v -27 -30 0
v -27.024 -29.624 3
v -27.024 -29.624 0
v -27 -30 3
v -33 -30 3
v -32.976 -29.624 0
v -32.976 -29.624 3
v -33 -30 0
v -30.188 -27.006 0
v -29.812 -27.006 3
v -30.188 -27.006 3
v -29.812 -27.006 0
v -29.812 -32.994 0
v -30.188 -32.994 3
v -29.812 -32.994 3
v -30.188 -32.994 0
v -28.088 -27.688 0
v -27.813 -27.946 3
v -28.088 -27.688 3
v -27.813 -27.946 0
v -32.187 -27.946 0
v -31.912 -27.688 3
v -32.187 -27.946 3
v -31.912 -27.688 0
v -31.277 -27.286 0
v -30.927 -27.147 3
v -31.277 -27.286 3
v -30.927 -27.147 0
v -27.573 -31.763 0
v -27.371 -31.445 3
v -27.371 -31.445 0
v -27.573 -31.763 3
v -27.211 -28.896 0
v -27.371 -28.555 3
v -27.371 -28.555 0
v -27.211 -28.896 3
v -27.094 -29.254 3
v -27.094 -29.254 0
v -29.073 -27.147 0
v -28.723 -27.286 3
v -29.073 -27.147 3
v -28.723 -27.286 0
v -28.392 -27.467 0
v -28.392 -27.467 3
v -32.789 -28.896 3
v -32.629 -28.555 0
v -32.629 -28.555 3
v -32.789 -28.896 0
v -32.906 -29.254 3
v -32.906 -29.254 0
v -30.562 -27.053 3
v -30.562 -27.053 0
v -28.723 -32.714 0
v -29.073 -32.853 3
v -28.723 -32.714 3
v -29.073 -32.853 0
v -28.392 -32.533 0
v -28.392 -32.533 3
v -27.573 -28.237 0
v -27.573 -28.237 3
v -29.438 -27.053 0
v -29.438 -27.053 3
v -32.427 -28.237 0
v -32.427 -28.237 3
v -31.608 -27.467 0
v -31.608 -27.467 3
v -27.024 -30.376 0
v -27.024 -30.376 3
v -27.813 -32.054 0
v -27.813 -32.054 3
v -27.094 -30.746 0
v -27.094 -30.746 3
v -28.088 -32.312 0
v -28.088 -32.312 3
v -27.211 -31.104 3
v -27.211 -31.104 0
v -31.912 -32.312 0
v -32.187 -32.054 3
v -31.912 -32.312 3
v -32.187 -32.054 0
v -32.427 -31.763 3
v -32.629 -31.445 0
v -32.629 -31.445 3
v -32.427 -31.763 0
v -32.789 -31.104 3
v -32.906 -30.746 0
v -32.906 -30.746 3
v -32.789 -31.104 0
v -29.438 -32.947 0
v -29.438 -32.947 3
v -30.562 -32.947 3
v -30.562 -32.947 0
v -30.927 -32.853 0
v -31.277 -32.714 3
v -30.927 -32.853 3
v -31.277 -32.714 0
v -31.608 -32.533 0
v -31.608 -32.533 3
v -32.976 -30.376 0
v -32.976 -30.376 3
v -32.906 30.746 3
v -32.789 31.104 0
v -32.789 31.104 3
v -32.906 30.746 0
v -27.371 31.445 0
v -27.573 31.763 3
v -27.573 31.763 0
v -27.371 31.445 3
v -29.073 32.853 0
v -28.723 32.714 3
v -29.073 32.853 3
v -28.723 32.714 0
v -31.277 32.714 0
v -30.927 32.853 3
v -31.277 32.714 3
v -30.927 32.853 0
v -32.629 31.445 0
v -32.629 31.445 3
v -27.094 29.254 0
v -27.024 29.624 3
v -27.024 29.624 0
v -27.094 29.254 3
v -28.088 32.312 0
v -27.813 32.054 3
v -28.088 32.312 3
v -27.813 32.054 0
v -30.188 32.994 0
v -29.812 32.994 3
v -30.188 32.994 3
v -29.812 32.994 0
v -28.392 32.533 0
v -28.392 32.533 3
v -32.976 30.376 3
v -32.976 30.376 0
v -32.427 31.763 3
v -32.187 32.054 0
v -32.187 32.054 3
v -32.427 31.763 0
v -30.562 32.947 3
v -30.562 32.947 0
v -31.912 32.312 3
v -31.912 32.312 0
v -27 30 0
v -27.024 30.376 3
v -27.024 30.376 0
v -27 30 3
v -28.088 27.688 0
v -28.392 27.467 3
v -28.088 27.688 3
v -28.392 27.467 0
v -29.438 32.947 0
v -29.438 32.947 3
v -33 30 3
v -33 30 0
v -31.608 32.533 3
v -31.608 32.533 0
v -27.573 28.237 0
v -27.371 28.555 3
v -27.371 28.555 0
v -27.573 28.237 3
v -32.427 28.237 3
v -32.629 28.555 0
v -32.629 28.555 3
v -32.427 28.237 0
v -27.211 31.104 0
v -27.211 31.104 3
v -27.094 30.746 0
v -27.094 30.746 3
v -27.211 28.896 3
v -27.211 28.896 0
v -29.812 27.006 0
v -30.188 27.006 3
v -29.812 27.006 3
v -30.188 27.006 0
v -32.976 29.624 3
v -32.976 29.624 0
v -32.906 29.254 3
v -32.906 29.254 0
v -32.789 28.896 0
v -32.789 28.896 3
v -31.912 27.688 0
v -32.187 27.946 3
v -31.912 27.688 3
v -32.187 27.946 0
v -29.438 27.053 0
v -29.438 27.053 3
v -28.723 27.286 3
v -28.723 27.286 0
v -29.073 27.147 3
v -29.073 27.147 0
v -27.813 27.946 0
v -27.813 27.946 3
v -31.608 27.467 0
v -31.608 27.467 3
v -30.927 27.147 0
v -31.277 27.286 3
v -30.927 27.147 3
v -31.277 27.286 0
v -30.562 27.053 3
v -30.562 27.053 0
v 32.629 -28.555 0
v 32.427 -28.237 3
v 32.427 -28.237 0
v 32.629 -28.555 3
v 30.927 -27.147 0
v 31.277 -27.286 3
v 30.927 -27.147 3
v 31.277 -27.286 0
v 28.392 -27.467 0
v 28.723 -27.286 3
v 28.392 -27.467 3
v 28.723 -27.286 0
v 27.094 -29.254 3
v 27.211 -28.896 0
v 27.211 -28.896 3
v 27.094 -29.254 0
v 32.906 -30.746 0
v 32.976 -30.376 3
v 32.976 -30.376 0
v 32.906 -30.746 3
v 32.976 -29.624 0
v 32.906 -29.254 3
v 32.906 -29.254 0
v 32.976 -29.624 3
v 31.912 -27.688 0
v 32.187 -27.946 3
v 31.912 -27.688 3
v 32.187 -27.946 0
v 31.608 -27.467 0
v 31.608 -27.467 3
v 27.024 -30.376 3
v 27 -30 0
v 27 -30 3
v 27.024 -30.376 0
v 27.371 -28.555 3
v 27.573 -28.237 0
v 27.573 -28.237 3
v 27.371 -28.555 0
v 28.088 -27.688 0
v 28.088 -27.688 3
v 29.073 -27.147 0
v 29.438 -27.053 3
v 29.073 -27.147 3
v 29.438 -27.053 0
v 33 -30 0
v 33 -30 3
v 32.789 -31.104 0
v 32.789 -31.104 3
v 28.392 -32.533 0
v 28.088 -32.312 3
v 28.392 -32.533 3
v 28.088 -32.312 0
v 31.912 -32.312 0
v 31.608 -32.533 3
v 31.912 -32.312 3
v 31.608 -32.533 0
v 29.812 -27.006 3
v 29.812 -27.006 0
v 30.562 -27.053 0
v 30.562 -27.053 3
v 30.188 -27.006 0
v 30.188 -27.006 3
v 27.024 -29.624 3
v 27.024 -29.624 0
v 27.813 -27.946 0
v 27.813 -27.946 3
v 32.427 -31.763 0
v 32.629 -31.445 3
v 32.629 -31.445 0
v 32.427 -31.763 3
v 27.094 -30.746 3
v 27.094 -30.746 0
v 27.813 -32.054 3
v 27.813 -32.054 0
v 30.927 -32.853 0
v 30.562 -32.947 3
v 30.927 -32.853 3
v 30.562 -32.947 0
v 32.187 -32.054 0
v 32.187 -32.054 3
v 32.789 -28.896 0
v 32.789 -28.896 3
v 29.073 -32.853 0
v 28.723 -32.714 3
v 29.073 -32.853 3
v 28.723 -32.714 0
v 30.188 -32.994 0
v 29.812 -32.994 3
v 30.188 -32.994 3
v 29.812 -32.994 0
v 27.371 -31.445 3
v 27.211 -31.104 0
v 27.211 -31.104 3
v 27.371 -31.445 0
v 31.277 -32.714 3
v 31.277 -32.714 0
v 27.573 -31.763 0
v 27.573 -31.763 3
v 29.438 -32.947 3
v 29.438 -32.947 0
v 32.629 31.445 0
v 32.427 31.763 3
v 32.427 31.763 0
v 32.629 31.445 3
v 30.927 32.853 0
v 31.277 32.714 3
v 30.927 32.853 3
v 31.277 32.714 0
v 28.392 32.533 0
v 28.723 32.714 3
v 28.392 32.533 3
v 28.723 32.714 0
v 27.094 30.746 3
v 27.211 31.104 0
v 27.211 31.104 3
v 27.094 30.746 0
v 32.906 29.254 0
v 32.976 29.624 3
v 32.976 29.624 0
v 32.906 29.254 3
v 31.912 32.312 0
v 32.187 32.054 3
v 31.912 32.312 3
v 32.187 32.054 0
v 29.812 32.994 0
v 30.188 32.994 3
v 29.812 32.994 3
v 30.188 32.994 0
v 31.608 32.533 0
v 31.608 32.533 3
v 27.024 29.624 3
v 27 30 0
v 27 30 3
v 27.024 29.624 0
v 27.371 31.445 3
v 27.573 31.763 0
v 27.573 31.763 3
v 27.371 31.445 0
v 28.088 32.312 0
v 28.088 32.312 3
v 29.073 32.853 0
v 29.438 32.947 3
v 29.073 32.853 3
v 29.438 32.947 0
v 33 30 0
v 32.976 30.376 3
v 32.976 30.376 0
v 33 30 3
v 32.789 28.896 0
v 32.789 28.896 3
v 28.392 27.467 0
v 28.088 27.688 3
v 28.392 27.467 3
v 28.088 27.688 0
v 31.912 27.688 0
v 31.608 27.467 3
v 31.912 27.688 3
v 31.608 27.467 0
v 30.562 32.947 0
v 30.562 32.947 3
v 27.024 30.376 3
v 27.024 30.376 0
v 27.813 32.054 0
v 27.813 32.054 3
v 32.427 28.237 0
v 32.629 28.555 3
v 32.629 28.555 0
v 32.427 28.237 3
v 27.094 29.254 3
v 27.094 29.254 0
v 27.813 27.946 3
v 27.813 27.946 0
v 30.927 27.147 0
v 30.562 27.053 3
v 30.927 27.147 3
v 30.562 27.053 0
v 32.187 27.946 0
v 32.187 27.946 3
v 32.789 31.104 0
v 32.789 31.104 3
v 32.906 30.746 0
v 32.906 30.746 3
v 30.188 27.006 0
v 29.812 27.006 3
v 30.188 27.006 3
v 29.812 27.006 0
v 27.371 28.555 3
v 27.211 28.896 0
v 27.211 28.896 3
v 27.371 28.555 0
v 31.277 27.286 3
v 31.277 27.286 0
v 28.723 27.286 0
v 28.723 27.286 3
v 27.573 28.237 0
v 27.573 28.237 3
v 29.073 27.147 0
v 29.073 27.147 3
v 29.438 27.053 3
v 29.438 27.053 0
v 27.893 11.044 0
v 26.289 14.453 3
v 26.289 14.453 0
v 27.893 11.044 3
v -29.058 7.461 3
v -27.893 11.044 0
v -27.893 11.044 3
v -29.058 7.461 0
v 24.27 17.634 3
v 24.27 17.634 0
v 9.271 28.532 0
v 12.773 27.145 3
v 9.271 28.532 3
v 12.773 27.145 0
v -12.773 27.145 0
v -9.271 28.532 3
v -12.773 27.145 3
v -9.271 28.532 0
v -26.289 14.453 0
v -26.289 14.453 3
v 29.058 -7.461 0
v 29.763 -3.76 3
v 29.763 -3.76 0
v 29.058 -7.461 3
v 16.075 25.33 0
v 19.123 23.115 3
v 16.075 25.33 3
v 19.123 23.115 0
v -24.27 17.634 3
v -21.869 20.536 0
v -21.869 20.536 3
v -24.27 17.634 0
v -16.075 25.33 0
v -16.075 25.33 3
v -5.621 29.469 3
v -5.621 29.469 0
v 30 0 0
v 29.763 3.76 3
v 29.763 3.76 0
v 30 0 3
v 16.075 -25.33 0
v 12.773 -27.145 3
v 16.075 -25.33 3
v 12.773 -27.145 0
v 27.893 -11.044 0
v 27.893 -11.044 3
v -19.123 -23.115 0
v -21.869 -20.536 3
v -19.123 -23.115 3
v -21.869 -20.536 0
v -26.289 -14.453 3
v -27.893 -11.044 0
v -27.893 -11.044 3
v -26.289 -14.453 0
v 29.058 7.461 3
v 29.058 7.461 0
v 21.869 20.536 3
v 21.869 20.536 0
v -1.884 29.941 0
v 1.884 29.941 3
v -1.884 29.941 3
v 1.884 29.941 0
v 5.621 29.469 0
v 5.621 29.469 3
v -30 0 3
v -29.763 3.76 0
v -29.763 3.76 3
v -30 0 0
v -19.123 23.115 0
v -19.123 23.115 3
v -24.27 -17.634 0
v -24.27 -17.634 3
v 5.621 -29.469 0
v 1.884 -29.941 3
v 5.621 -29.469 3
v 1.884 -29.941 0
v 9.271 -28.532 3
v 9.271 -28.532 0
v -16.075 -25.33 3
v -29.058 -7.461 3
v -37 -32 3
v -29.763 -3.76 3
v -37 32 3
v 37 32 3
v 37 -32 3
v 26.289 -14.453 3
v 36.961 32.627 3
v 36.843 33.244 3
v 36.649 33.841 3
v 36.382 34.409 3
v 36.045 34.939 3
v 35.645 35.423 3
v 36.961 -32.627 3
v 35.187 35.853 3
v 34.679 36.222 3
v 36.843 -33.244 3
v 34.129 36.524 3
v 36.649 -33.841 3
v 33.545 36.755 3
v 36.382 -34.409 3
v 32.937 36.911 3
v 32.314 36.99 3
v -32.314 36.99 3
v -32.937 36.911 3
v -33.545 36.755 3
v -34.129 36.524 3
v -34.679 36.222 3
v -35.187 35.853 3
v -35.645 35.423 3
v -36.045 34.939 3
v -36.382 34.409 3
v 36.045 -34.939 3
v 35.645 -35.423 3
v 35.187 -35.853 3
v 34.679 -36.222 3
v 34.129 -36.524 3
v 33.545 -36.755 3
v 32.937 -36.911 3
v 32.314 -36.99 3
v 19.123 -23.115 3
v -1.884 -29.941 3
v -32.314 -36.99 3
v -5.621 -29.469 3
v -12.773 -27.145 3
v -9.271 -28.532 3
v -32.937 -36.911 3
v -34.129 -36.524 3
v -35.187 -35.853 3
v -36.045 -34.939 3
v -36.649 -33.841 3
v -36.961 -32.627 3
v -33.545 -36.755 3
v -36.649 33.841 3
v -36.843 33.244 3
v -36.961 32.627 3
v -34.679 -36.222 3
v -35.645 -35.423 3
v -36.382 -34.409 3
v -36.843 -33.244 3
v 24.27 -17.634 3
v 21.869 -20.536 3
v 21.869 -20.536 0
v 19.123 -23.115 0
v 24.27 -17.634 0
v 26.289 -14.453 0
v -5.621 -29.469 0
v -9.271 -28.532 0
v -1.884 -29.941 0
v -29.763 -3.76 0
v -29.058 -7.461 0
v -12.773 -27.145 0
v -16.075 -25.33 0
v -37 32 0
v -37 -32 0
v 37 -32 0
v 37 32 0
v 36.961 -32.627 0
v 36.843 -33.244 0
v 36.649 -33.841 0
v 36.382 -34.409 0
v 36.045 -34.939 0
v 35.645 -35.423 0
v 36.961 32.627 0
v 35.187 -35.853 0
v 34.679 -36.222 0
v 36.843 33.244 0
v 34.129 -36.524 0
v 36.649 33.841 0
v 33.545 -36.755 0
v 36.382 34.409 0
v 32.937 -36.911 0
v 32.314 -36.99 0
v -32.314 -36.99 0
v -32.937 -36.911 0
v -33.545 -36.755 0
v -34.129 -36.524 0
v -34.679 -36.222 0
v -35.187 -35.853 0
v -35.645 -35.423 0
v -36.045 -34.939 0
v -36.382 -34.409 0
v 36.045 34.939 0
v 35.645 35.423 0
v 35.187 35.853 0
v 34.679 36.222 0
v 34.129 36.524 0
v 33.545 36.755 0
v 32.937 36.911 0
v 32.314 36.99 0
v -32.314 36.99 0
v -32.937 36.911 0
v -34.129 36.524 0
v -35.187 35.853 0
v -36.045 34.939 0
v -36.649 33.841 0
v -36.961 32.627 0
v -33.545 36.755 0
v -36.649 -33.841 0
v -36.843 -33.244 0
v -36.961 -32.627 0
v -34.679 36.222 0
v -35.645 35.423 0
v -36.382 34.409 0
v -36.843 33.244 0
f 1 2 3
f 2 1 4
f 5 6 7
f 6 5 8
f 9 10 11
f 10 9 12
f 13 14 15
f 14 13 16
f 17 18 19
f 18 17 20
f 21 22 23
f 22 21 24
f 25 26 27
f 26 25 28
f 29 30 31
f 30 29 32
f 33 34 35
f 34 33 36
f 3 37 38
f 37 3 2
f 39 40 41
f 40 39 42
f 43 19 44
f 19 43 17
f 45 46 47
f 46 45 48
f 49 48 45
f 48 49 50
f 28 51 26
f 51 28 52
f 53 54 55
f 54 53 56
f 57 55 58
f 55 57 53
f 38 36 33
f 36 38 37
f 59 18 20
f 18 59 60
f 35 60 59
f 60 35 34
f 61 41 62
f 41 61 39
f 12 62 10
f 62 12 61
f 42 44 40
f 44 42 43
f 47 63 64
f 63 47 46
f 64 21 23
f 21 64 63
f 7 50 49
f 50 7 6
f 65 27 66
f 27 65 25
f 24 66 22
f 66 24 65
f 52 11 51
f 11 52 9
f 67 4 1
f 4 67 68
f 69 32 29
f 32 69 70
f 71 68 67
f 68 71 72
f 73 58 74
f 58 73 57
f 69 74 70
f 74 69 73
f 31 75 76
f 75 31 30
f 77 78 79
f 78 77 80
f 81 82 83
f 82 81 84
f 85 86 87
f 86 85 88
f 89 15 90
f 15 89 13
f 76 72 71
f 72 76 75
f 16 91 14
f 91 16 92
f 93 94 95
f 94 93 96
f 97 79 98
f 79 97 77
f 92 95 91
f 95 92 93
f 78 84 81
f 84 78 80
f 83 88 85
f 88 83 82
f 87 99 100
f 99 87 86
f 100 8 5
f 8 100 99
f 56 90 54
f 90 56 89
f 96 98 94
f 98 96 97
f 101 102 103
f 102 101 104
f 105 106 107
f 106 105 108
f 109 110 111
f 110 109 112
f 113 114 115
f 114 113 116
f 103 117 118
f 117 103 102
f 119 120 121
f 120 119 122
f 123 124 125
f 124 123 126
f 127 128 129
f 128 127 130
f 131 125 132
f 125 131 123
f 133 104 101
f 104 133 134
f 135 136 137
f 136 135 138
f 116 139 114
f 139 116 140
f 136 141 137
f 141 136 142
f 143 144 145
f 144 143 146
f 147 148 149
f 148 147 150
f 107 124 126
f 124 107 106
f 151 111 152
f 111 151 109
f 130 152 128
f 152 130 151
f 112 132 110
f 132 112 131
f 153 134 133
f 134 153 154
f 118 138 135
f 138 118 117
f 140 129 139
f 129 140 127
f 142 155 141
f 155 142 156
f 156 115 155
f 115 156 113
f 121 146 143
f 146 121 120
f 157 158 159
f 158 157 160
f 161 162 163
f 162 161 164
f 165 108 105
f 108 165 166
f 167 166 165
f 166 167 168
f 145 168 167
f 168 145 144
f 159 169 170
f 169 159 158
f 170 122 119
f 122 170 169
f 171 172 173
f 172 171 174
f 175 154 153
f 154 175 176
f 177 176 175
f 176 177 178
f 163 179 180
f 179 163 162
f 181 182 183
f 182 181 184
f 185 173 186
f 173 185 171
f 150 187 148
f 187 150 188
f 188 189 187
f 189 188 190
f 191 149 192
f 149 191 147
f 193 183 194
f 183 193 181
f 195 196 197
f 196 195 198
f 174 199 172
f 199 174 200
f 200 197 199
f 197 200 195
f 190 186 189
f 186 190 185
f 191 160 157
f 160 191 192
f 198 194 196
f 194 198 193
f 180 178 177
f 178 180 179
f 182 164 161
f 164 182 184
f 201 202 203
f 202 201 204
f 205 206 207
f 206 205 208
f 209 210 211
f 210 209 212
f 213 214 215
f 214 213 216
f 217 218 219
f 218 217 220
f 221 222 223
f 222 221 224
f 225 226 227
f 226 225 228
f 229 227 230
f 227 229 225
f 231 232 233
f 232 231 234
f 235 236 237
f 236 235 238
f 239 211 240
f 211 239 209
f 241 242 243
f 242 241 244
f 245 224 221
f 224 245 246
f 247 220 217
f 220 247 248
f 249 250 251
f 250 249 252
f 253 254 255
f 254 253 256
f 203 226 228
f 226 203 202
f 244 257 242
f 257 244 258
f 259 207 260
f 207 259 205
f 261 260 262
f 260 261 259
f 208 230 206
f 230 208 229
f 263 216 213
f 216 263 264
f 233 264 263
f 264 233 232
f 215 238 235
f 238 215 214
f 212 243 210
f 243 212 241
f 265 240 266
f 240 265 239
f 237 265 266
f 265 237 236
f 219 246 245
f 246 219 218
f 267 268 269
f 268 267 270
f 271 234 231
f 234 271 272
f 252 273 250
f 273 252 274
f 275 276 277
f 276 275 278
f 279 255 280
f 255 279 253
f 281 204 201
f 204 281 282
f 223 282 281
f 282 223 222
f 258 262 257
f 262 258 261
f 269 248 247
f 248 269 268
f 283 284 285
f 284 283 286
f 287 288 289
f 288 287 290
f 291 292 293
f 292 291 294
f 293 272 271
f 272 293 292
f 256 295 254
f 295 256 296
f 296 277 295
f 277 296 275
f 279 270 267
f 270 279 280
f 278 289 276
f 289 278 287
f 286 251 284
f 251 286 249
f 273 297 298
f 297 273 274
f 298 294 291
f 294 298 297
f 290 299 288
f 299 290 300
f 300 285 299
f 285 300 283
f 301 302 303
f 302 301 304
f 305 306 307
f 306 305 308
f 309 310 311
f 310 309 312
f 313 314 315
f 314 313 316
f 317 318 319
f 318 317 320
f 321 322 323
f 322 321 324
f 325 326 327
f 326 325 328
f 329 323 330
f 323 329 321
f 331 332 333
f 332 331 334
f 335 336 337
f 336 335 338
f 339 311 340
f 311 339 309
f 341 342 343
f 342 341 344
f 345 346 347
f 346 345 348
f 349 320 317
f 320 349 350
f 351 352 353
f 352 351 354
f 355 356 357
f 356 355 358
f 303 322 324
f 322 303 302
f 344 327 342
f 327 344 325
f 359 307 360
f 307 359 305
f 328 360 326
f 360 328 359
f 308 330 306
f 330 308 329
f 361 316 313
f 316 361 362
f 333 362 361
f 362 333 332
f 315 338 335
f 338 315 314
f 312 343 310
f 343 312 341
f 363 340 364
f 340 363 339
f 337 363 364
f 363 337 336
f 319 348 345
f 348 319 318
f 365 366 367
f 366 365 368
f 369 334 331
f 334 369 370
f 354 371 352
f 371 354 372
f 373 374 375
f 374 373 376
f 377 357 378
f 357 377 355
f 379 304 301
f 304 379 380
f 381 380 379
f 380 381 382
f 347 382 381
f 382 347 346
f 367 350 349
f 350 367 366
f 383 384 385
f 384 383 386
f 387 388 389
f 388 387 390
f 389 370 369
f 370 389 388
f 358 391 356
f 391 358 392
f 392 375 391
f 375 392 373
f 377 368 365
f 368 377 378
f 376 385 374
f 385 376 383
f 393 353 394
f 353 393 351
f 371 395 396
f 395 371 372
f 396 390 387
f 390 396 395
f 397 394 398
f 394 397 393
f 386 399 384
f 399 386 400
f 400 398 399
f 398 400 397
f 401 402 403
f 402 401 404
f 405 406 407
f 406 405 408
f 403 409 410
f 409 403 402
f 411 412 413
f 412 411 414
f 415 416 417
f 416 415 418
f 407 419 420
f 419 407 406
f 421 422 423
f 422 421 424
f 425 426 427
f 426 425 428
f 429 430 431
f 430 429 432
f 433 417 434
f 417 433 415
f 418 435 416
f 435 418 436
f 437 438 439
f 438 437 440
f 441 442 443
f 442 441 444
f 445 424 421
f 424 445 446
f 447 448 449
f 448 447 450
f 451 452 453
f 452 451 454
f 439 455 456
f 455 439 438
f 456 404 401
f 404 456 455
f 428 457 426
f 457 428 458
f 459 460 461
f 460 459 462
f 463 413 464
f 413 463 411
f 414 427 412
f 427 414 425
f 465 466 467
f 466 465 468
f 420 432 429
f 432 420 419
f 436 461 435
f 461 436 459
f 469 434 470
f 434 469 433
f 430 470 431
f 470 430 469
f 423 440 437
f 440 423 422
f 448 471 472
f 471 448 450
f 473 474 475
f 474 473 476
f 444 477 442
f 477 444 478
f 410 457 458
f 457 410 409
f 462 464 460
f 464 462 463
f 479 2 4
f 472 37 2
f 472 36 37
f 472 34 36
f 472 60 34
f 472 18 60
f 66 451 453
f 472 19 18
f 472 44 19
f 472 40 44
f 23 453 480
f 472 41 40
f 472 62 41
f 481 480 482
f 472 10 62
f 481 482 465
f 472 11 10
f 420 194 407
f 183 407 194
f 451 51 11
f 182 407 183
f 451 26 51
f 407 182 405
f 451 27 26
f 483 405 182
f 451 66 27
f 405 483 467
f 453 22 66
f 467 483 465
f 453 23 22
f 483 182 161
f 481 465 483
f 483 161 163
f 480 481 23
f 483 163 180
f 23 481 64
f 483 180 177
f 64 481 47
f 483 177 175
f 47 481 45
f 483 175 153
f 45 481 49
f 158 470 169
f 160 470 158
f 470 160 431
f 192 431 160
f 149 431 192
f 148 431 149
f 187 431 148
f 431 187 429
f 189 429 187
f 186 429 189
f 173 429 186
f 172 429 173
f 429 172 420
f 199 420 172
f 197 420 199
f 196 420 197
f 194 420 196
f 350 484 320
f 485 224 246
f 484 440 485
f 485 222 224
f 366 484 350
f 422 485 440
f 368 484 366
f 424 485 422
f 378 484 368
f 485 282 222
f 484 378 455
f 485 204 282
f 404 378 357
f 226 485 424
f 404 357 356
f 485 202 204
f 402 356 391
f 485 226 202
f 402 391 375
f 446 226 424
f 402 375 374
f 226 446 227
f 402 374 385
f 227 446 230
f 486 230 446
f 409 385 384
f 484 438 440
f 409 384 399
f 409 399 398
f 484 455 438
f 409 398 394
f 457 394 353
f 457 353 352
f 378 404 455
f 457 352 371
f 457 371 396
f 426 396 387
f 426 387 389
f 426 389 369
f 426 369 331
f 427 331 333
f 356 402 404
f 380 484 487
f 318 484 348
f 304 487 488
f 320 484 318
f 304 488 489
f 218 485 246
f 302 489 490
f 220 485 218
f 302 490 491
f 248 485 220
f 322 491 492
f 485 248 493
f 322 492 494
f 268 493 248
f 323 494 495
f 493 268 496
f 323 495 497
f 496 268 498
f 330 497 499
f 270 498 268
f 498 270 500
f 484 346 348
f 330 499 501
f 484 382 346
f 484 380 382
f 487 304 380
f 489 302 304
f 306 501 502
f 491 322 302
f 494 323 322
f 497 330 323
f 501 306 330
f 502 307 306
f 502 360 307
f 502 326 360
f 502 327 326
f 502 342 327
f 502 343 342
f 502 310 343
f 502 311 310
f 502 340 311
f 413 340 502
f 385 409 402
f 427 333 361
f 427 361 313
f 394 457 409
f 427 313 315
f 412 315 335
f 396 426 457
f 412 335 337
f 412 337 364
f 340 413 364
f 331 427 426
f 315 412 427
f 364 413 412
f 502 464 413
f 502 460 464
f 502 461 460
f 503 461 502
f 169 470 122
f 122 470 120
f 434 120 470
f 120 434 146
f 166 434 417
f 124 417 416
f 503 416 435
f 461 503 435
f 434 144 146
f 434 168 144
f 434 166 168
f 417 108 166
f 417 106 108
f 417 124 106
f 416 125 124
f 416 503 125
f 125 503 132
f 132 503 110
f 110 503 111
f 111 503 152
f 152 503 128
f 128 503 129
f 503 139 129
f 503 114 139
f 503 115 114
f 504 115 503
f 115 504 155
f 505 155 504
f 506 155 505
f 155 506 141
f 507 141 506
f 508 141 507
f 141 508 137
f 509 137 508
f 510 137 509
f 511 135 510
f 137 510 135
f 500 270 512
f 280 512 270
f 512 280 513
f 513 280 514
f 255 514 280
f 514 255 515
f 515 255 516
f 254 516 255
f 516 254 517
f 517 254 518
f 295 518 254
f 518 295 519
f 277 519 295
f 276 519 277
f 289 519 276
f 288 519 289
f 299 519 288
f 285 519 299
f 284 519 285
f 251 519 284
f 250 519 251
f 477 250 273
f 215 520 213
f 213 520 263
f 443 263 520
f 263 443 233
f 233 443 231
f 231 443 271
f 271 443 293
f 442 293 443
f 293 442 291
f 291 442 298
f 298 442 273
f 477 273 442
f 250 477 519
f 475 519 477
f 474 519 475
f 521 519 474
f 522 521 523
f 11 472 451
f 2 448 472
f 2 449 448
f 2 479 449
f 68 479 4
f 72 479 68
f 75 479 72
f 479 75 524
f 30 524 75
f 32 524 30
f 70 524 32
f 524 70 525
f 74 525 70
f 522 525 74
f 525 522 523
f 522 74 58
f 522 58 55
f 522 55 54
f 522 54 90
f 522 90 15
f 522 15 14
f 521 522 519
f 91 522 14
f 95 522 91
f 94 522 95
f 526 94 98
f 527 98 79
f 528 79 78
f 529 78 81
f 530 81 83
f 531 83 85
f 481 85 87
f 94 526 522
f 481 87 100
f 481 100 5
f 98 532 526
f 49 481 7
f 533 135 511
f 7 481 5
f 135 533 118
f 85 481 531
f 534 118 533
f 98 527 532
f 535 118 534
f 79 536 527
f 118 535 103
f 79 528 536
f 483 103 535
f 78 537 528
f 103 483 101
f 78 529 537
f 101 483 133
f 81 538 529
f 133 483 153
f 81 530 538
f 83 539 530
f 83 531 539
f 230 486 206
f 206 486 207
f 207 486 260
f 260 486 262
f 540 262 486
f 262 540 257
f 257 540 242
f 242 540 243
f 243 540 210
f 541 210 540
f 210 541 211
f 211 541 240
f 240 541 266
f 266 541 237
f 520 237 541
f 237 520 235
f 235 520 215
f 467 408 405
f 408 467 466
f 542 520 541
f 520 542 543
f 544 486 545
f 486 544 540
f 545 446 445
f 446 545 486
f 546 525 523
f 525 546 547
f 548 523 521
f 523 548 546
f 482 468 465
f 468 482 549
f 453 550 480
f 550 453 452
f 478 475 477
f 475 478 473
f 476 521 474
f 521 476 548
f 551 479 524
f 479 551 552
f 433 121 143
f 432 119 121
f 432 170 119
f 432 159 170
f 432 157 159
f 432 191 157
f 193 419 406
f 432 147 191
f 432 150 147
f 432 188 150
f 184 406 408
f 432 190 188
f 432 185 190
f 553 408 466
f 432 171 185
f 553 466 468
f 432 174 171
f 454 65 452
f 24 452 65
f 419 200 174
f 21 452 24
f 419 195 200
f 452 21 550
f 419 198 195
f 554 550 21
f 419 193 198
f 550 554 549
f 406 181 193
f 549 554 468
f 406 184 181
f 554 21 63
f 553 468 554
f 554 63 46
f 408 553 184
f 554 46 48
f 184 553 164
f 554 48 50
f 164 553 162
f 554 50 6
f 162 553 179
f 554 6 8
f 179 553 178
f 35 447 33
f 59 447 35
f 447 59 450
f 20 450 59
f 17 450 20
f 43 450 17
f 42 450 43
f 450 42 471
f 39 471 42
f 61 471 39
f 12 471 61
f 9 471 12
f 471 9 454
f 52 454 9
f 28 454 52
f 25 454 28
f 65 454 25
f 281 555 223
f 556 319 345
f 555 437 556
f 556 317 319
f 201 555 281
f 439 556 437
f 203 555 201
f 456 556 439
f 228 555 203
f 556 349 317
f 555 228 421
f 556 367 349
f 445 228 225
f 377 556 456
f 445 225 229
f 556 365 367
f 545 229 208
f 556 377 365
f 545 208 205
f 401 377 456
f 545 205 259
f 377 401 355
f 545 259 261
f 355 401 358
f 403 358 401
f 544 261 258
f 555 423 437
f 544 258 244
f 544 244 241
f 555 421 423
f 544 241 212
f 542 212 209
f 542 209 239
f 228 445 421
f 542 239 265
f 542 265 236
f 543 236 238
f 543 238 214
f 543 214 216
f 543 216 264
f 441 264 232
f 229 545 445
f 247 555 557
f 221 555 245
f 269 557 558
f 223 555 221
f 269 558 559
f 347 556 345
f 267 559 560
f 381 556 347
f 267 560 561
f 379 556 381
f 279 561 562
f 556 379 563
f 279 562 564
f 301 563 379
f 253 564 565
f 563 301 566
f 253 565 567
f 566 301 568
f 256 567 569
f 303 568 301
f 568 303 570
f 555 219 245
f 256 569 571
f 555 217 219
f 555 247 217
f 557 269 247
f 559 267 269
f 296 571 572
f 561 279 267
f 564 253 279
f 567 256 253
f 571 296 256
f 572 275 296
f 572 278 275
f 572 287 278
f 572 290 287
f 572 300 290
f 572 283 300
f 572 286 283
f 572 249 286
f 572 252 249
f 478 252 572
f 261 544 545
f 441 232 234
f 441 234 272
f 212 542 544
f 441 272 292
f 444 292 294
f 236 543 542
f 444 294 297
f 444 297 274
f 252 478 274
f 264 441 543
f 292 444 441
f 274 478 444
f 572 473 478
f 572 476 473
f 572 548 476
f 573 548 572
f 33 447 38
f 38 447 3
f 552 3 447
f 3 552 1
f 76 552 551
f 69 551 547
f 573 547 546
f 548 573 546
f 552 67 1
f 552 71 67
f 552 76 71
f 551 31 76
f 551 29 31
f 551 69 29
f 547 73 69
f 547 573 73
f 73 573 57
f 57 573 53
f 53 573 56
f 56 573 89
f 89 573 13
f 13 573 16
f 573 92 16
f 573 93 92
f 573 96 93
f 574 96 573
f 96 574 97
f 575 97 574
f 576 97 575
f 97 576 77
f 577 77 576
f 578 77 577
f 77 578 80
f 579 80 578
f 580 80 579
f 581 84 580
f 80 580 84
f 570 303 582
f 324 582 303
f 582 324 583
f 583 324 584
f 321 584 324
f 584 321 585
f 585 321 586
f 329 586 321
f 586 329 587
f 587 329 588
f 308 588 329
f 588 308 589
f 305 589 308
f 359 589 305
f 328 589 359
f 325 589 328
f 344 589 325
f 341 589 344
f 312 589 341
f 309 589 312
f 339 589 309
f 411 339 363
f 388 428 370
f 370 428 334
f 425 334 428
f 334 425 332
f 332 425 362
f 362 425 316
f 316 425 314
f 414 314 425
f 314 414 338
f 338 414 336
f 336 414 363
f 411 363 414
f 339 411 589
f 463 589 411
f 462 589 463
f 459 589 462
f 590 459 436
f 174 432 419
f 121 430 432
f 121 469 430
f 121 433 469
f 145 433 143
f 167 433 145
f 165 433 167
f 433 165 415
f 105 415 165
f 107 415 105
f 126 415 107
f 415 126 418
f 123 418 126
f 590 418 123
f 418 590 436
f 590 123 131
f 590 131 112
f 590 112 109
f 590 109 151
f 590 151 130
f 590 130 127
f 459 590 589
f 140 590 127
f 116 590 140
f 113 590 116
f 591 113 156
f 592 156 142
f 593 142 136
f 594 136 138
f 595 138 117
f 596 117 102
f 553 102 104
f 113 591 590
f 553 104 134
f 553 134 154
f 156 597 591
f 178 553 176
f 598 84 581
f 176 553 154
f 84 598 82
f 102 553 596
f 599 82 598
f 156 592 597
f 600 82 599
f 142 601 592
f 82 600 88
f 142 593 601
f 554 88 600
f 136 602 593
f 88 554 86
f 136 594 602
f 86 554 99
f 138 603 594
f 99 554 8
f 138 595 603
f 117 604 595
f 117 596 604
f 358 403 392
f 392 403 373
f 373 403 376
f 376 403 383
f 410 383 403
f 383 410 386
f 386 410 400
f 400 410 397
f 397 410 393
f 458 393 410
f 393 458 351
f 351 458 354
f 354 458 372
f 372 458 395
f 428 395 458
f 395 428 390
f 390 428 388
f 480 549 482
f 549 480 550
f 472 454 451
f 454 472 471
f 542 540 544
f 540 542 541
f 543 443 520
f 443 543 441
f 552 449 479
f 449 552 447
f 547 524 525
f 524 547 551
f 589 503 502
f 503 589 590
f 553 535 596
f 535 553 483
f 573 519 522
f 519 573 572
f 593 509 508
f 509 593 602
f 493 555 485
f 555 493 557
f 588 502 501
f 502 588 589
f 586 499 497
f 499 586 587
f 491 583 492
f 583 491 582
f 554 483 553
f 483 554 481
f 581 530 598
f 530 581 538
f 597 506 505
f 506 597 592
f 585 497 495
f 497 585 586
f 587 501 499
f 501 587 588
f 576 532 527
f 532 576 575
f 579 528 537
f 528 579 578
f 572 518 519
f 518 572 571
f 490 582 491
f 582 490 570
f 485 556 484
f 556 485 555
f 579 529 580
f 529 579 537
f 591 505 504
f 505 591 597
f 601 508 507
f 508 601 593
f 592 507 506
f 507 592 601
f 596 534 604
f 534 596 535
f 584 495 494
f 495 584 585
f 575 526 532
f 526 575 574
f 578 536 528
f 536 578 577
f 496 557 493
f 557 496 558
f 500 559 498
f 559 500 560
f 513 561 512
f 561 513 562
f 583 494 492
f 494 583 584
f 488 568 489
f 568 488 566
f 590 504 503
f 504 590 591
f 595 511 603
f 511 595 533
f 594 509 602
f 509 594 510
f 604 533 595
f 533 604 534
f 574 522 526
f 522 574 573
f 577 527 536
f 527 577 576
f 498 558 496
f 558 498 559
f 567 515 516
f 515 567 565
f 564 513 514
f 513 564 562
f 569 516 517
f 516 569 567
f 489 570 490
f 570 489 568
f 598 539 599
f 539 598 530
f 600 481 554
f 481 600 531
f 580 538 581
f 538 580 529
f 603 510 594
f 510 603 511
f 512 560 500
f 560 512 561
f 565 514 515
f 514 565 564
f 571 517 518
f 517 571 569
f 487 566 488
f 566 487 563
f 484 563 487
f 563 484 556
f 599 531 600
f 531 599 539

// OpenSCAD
$fn = 50;


difference() {
	union() {
		hull() {
			translate(v = [-32.0000000000, 32.0000000000, 0]) {
				cylinder(h = 3, r = 5);
			}
			translate(v = [32.0000000000, 32.0000000000, 0]) {
				cylinder(h = 3, r = 5);
			}
			translate(v = [-32.0000000000, -32.0000000000, 0]) {
				cylinder(h = 3, r = 5);
			}
			translate(v = [32.0000000000, -32.0000000000, 0]) {
				cylinder(h = 3, r = 5);
			}
		}
	}
	union() {
		#translate(v = [-30.0000000000, -30.0000000000, -100.0000000000]) {
			cylinder(h = 200, r = 3.0000000000);
		}
		#translate(v = [-30.0000000000, 30.0000000000, -100.0000000000]) {
			cylinder(h = 200, r = 3.0000000000);
		}
		#translate(v = [30.0000000000, -30.0000000000, -100.0000000000]) {
			cylinder(h = 200, r = 3.0000000000);
		}
		#translate(v = [30.0000000000, 30.0000000000, -100.0000000000]) {
			cylinder(h = 200, r = 3.0000000000);
		}
		#cylinder(h = 3, r = 30.0000000000);
	}
}
